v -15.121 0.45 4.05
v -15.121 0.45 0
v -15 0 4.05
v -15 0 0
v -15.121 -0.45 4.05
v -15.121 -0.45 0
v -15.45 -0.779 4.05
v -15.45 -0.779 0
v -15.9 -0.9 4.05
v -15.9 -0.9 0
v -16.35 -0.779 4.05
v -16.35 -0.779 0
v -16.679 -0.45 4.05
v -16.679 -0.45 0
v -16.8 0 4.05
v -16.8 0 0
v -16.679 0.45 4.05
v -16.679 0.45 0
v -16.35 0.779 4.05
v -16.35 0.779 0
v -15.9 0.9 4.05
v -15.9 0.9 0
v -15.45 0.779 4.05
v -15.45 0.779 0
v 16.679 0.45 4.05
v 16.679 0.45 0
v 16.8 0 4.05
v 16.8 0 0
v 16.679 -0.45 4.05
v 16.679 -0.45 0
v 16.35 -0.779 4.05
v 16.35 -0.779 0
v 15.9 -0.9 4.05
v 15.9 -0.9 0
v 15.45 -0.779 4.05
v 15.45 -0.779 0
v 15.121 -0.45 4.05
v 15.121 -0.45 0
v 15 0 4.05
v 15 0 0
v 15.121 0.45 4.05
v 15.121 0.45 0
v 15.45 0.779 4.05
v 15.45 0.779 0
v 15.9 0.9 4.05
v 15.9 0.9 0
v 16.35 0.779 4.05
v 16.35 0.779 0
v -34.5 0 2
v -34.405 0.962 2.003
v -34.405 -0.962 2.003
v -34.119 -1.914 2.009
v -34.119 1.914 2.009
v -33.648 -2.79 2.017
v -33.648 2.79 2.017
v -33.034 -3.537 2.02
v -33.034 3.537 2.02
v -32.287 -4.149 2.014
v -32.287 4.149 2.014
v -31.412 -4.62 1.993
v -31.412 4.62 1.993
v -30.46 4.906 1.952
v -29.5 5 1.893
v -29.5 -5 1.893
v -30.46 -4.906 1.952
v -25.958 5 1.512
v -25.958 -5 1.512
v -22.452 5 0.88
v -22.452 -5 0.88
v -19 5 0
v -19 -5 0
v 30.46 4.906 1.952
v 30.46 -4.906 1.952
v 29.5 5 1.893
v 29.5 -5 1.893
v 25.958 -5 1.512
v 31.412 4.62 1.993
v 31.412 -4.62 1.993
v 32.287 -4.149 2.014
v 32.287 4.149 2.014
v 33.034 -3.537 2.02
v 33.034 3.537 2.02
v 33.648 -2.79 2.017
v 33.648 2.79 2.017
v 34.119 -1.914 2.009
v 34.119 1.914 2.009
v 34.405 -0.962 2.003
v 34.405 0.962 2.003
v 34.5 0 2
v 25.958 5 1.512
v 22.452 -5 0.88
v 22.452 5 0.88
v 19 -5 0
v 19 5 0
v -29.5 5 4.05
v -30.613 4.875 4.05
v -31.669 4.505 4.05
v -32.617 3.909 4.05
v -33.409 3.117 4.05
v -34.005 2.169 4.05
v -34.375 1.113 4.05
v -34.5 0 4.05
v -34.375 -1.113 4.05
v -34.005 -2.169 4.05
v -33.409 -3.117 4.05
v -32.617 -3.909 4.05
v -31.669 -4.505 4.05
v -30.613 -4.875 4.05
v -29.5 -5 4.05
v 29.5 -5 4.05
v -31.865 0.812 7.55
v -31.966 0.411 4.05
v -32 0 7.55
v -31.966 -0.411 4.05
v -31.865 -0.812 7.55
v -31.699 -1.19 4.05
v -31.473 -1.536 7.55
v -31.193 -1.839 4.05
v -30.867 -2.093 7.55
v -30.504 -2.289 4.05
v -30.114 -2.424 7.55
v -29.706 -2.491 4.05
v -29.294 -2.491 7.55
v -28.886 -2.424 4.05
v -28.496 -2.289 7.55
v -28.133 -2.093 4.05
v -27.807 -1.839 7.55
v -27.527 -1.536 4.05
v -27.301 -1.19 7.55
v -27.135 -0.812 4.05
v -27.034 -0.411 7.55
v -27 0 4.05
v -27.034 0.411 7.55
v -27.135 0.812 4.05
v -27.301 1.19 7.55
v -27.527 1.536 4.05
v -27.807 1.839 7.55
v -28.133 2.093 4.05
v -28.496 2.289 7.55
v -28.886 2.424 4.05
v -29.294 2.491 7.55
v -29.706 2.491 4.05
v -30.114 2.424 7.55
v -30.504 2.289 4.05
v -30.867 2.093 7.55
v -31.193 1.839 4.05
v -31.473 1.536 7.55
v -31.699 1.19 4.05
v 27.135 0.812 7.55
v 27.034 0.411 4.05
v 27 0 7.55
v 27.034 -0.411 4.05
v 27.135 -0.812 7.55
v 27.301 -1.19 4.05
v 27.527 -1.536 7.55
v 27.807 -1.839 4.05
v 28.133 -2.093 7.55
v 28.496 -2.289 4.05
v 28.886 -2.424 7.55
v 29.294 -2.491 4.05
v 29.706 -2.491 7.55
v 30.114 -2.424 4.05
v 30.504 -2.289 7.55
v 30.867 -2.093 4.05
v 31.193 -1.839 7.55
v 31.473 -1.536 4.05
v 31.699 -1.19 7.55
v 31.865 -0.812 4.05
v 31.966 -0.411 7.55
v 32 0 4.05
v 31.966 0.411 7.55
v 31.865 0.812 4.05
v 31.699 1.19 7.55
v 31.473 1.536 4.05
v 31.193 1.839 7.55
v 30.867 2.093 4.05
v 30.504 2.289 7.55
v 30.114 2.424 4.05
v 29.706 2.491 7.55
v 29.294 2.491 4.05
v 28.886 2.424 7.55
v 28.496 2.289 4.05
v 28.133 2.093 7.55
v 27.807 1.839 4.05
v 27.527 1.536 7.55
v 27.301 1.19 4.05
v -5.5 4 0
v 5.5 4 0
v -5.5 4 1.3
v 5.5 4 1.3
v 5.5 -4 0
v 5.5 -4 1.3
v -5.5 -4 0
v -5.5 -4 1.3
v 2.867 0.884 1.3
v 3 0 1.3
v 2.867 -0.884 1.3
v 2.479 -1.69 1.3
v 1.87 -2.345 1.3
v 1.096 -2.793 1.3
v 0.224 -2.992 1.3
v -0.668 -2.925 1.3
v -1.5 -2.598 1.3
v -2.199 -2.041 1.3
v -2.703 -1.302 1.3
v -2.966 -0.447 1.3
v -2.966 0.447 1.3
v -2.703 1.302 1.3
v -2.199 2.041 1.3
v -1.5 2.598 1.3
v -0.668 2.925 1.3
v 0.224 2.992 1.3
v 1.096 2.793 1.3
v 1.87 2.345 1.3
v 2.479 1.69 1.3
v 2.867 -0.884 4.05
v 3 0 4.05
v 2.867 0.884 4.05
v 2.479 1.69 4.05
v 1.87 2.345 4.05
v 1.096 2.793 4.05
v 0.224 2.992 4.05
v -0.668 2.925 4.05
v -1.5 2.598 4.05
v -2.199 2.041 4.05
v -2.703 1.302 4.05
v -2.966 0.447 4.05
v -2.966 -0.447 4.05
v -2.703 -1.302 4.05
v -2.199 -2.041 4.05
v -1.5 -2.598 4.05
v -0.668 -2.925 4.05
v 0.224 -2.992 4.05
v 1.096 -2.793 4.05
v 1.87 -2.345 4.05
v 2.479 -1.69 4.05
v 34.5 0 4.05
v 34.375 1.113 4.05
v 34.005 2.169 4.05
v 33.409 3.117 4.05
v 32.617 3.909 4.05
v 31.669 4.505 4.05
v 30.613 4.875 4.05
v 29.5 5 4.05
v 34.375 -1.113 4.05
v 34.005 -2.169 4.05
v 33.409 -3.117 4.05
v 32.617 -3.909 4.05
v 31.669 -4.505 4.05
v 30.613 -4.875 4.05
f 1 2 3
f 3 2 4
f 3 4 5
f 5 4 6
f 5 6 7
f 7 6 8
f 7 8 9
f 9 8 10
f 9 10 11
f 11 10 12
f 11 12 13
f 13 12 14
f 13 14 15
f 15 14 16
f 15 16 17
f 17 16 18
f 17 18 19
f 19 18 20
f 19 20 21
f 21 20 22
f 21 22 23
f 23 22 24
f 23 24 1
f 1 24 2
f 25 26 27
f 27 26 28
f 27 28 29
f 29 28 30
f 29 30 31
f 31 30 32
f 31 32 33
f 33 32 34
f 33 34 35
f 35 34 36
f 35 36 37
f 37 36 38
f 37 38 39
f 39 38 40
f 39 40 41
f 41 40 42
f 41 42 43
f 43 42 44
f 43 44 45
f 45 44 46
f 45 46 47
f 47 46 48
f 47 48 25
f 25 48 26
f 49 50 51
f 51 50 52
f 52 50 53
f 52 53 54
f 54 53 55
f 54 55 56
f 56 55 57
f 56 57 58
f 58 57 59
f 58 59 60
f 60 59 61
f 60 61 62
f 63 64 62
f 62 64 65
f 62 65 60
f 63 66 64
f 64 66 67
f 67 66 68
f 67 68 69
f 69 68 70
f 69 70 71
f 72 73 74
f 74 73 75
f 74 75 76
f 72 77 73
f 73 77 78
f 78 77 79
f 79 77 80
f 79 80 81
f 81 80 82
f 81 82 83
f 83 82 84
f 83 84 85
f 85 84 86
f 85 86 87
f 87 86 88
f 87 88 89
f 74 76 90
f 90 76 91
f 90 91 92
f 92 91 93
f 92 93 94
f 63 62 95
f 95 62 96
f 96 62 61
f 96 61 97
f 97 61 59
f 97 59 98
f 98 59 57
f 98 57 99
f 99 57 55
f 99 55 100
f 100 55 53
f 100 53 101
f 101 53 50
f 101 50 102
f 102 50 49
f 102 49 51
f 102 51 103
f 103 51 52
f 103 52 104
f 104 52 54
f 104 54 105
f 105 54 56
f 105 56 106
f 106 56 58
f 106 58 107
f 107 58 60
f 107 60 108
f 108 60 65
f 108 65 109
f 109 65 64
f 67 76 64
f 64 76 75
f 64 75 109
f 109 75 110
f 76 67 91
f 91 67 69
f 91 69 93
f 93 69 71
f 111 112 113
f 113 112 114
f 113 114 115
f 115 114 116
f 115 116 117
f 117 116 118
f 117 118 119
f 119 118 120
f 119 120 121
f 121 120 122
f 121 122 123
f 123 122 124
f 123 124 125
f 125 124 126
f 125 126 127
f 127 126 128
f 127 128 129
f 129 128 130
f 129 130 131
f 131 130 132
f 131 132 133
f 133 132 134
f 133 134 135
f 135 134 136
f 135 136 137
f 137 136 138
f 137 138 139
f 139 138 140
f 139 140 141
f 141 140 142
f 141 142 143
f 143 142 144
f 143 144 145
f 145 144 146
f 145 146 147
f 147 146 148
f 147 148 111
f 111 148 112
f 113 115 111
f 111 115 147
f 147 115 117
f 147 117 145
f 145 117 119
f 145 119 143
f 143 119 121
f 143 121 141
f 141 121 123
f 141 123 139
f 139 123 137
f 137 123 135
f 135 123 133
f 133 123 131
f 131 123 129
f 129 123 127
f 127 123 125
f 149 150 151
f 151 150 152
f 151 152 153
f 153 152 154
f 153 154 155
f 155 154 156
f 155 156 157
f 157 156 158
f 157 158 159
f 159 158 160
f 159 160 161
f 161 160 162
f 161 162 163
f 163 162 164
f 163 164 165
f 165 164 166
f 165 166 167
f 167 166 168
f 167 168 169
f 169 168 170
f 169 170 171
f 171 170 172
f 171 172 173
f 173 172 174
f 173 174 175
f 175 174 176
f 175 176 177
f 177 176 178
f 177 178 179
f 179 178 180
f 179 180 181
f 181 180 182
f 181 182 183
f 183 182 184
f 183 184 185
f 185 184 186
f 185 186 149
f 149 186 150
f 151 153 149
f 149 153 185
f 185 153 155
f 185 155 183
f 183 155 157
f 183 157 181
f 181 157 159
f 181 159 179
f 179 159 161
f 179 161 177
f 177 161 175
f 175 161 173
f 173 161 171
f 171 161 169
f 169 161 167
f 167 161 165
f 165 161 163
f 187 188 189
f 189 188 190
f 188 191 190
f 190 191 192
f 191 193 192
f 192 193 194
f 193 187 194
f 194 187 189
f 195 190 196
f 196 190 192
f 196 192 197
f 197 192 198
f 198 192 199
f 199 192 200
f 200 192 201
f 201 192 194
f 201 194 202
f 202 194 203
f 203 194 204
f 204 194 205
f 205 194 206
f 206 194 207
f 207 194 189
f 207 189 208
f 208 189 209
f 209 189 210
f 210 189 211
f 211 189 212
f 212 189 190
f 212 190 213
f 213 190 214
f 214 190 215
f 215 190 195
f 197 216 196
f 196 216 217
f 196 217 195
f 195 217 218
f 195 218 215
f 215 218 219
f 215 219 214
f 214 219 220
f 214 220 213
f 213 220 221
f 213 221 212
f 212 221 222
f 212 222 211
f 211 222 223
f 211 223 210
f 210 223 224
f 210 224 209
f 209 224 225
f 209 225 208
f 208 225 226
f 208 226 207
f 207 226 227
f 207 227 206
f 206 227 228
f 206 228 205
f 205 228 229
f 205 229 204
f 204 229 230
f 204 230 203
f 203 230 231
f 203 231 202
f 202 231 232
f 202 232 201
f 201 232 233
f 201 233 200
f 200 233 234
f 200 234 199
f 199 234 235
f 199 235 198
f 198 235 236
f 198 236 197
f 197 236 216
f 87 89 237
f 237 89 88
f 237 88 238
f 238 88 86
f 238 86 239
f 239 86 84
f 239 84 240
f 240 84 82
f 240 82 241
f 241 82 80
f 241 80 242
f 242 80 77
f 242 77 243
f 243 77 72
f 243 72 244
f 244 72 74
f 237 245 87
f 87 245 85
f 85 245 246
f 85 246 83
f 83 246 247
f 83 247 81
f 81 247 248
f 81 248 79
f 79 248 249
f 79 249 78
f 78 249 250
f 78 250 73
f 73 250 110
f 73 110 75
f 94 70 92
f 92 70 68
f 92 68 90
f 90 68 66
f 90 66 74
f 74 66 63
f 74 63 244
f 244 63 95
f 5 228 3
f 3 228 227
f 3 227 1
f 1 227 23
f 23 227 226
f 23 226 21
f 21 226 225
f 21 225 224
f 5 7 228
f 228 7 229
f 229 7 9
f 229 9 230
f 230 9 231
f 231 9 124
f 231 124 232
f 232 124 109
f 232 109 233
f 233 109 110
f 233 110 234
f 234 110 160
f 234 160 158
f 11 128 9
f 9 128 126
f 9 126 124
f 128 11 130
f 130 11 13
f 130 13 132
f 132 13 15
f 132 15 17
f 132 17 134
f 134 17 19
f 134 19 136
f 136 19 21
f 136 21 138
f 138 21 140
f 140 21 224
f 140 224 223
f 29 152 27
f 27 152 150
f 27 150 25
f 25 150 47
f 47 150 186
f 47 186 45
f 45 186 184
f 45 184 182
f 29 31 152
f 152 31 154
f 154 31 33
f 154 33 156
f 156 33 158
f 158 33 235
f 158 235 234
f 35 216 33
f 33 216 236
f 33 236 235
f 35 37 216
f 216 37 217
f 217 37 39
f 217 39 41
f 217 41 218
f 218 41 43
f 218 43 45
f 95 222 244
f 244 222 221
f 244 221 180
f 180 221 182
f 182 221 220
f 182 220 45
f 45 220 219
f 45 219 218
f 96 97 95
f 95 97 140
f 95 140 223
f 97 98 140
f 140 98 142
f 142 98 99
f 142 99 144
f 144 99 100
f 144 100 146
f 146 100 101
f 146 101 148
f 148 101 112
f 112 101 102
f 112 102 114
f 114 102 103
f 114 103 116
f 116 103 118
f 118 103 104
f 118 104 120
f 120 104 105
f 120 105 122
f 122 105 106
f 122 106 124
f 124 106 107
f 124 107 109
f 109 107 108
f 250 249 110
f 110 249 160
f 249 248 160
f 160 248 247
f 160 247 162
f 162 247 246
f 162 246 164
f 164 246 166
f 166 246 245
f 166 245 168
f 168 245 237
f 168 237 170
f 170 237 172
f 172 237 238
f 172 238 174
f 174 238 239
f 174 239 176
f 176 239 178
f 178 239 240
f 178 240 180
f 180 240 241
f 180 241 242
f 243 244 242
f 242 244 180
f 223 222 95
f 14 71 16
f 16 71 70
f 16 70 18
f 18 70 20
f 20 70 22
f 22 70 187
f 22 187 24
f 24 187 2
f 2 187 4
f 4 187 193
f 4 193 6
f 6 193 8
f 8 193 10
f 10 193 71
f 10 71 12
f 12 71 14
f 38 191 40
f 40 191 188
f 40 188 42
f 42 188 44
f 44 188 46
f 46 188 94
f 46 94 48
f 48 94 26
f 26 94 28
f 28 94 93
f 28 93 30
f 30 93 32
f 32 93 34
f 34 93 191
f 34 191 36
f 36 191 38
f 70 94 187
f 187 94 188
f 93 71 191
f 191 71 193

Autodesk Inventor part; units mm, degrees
ref_plane "YZ Plane" through (0, 0, 0) normal (1, 0, 0) x (0, 1, 0)
ref_plane "XZ Plane" through (0, 0, 0) normal (0, 1, 0) x (-1, 0, 0)
ref_plane "XY Plane" through (0, 0, 0) normal (0, 0, 1) x (1, 0, 0)
sketch "Sketch1" plane through (0, 0, 0) normal (0, 0, 1) x (1, 0, 0)
  circle A0 centre (0, 0) radius 3
  circle A1 centre (0, 0) radius 5 construction
  circle A2 centre (-29.5, 0) radius 2.5
  circle A3 centre (29.5, 0) radius 2.5
  line L0 (-29.5, 0) -> (29.5, 0) construction
  arc A4 (-29.5, 5) -> (-29.5, -5) centre (-29.5, 0) ccw
  arc A5 (29.5, -5) -> (29.5, 5) centre (29.5, 0) ccw
  line L1 (-29.5, 5) -> (29.5, 5)
  line L2 (29.5, -5) -> (-29.5, -5)
  dimension "d0" = 6
  dimension "d1" = 10
  dimension "d2" = 5
  dimension "d3" = 5
  dimension "d4" = 29.5
  dimension "d5" = 29.5
  dimension "d6" = 2.5
  dimension "d7" = 2.5
extrude "Extrusion1" add sketch "Sketch1" along normal blind 4.05
sketch "Sketch2" plane through (0, 0, 0) normal (0, 0, -1) x (-1, 0, 0)
  line L0 (-5.5, -4) -> (5.5, -4)
  line L1 (5.5, -4) -> (5.5, 4)
  line L2 (5.5, 4) -> (-5.5, 4)
  line L3 (-5.5, 4) -> (-5.5, -4)
  line L4 (-5.5, -4) -> (5.5, 4) construction
  line L5 (5.5, -4) -> (-5.5, 4) construction
  line L6 (-29.5, 5) -> (29.5, 5) projected
  point P0 (0, 0)
  dimension "d10" = 8
  dimension "d11" = 11
extrude "Extrusion2" cut sketch "Sketch2" against normal blind 1.3
sketch "Sketch3" plane through (0, 0, 0) normal (0, 0, -1) x (-1, 0, 0)
  circle A0 centre (-29.5, 0) radius 2.5 projected
  circle A1 centre (29.5, 0) radius 2.5 projected
  point P0 (0, 0)
extrude "Extrusion3" add sketch "Sketch3" against normal blind 7.55
sketch "Sketch4" plane through (-29.5, 5, 0) normal (0, 1, 0) x (1, 0, 0)
  line L0 (64, 0) -> (64, -4.05) projected
  line L1 (64, -2) -> (64, 0)
  line L2 (59, 0) -> (64, 0) projected
  line L3 (64, 0) -> (48.5, 0)
  arc A0 (48.5, 0) -> (64, -2) centre (62.5699, 47.9795) ccw
  line L4 (59, 0) -> (0, 0) projected
  line L5 (29.5, 0) -> (29.5, -4.05)
  line L6 (59, -4.05) -> (0, -4.05) projected
  line L7 (-5, -2) -> (-5, 0)
  line L8 (0, 0) -> (-5, 0)
  line L9 (-5, 0) -> (10.5, 0)
  arc A1 (-5, -2) -> (10.5, 0) centre (-3.5699, 47.9795) ccw
  dimension "d16" = 19
  dimension "d17" = 2
  dimension "d18" = 50
extrude "Extrusion4" cut sketch "Sketch4" against normal through all
sketch "Sketch5" plane through (0, 0, 0) normal (0, 0, -1) x (-1, 0, 0)
  circle A0 centre (15.9, 0) radius 0.9
  circle A1 centre (-15.9, 0) radius 0.9
  line L0 (15.9, 0) -> (-15.9, 0)
  point P0 (0, 0)
  dimension "d21" = 1.8
  dimension "d22" = 1.8
  dimension "d24" = 15.9
extrude "Extrusion5" cut sketch "Sketch5" against normal through all
equation "\"d3\" = d2"
equation "\"d5\" = d4"
properties part number "gripper_mechanism1"
